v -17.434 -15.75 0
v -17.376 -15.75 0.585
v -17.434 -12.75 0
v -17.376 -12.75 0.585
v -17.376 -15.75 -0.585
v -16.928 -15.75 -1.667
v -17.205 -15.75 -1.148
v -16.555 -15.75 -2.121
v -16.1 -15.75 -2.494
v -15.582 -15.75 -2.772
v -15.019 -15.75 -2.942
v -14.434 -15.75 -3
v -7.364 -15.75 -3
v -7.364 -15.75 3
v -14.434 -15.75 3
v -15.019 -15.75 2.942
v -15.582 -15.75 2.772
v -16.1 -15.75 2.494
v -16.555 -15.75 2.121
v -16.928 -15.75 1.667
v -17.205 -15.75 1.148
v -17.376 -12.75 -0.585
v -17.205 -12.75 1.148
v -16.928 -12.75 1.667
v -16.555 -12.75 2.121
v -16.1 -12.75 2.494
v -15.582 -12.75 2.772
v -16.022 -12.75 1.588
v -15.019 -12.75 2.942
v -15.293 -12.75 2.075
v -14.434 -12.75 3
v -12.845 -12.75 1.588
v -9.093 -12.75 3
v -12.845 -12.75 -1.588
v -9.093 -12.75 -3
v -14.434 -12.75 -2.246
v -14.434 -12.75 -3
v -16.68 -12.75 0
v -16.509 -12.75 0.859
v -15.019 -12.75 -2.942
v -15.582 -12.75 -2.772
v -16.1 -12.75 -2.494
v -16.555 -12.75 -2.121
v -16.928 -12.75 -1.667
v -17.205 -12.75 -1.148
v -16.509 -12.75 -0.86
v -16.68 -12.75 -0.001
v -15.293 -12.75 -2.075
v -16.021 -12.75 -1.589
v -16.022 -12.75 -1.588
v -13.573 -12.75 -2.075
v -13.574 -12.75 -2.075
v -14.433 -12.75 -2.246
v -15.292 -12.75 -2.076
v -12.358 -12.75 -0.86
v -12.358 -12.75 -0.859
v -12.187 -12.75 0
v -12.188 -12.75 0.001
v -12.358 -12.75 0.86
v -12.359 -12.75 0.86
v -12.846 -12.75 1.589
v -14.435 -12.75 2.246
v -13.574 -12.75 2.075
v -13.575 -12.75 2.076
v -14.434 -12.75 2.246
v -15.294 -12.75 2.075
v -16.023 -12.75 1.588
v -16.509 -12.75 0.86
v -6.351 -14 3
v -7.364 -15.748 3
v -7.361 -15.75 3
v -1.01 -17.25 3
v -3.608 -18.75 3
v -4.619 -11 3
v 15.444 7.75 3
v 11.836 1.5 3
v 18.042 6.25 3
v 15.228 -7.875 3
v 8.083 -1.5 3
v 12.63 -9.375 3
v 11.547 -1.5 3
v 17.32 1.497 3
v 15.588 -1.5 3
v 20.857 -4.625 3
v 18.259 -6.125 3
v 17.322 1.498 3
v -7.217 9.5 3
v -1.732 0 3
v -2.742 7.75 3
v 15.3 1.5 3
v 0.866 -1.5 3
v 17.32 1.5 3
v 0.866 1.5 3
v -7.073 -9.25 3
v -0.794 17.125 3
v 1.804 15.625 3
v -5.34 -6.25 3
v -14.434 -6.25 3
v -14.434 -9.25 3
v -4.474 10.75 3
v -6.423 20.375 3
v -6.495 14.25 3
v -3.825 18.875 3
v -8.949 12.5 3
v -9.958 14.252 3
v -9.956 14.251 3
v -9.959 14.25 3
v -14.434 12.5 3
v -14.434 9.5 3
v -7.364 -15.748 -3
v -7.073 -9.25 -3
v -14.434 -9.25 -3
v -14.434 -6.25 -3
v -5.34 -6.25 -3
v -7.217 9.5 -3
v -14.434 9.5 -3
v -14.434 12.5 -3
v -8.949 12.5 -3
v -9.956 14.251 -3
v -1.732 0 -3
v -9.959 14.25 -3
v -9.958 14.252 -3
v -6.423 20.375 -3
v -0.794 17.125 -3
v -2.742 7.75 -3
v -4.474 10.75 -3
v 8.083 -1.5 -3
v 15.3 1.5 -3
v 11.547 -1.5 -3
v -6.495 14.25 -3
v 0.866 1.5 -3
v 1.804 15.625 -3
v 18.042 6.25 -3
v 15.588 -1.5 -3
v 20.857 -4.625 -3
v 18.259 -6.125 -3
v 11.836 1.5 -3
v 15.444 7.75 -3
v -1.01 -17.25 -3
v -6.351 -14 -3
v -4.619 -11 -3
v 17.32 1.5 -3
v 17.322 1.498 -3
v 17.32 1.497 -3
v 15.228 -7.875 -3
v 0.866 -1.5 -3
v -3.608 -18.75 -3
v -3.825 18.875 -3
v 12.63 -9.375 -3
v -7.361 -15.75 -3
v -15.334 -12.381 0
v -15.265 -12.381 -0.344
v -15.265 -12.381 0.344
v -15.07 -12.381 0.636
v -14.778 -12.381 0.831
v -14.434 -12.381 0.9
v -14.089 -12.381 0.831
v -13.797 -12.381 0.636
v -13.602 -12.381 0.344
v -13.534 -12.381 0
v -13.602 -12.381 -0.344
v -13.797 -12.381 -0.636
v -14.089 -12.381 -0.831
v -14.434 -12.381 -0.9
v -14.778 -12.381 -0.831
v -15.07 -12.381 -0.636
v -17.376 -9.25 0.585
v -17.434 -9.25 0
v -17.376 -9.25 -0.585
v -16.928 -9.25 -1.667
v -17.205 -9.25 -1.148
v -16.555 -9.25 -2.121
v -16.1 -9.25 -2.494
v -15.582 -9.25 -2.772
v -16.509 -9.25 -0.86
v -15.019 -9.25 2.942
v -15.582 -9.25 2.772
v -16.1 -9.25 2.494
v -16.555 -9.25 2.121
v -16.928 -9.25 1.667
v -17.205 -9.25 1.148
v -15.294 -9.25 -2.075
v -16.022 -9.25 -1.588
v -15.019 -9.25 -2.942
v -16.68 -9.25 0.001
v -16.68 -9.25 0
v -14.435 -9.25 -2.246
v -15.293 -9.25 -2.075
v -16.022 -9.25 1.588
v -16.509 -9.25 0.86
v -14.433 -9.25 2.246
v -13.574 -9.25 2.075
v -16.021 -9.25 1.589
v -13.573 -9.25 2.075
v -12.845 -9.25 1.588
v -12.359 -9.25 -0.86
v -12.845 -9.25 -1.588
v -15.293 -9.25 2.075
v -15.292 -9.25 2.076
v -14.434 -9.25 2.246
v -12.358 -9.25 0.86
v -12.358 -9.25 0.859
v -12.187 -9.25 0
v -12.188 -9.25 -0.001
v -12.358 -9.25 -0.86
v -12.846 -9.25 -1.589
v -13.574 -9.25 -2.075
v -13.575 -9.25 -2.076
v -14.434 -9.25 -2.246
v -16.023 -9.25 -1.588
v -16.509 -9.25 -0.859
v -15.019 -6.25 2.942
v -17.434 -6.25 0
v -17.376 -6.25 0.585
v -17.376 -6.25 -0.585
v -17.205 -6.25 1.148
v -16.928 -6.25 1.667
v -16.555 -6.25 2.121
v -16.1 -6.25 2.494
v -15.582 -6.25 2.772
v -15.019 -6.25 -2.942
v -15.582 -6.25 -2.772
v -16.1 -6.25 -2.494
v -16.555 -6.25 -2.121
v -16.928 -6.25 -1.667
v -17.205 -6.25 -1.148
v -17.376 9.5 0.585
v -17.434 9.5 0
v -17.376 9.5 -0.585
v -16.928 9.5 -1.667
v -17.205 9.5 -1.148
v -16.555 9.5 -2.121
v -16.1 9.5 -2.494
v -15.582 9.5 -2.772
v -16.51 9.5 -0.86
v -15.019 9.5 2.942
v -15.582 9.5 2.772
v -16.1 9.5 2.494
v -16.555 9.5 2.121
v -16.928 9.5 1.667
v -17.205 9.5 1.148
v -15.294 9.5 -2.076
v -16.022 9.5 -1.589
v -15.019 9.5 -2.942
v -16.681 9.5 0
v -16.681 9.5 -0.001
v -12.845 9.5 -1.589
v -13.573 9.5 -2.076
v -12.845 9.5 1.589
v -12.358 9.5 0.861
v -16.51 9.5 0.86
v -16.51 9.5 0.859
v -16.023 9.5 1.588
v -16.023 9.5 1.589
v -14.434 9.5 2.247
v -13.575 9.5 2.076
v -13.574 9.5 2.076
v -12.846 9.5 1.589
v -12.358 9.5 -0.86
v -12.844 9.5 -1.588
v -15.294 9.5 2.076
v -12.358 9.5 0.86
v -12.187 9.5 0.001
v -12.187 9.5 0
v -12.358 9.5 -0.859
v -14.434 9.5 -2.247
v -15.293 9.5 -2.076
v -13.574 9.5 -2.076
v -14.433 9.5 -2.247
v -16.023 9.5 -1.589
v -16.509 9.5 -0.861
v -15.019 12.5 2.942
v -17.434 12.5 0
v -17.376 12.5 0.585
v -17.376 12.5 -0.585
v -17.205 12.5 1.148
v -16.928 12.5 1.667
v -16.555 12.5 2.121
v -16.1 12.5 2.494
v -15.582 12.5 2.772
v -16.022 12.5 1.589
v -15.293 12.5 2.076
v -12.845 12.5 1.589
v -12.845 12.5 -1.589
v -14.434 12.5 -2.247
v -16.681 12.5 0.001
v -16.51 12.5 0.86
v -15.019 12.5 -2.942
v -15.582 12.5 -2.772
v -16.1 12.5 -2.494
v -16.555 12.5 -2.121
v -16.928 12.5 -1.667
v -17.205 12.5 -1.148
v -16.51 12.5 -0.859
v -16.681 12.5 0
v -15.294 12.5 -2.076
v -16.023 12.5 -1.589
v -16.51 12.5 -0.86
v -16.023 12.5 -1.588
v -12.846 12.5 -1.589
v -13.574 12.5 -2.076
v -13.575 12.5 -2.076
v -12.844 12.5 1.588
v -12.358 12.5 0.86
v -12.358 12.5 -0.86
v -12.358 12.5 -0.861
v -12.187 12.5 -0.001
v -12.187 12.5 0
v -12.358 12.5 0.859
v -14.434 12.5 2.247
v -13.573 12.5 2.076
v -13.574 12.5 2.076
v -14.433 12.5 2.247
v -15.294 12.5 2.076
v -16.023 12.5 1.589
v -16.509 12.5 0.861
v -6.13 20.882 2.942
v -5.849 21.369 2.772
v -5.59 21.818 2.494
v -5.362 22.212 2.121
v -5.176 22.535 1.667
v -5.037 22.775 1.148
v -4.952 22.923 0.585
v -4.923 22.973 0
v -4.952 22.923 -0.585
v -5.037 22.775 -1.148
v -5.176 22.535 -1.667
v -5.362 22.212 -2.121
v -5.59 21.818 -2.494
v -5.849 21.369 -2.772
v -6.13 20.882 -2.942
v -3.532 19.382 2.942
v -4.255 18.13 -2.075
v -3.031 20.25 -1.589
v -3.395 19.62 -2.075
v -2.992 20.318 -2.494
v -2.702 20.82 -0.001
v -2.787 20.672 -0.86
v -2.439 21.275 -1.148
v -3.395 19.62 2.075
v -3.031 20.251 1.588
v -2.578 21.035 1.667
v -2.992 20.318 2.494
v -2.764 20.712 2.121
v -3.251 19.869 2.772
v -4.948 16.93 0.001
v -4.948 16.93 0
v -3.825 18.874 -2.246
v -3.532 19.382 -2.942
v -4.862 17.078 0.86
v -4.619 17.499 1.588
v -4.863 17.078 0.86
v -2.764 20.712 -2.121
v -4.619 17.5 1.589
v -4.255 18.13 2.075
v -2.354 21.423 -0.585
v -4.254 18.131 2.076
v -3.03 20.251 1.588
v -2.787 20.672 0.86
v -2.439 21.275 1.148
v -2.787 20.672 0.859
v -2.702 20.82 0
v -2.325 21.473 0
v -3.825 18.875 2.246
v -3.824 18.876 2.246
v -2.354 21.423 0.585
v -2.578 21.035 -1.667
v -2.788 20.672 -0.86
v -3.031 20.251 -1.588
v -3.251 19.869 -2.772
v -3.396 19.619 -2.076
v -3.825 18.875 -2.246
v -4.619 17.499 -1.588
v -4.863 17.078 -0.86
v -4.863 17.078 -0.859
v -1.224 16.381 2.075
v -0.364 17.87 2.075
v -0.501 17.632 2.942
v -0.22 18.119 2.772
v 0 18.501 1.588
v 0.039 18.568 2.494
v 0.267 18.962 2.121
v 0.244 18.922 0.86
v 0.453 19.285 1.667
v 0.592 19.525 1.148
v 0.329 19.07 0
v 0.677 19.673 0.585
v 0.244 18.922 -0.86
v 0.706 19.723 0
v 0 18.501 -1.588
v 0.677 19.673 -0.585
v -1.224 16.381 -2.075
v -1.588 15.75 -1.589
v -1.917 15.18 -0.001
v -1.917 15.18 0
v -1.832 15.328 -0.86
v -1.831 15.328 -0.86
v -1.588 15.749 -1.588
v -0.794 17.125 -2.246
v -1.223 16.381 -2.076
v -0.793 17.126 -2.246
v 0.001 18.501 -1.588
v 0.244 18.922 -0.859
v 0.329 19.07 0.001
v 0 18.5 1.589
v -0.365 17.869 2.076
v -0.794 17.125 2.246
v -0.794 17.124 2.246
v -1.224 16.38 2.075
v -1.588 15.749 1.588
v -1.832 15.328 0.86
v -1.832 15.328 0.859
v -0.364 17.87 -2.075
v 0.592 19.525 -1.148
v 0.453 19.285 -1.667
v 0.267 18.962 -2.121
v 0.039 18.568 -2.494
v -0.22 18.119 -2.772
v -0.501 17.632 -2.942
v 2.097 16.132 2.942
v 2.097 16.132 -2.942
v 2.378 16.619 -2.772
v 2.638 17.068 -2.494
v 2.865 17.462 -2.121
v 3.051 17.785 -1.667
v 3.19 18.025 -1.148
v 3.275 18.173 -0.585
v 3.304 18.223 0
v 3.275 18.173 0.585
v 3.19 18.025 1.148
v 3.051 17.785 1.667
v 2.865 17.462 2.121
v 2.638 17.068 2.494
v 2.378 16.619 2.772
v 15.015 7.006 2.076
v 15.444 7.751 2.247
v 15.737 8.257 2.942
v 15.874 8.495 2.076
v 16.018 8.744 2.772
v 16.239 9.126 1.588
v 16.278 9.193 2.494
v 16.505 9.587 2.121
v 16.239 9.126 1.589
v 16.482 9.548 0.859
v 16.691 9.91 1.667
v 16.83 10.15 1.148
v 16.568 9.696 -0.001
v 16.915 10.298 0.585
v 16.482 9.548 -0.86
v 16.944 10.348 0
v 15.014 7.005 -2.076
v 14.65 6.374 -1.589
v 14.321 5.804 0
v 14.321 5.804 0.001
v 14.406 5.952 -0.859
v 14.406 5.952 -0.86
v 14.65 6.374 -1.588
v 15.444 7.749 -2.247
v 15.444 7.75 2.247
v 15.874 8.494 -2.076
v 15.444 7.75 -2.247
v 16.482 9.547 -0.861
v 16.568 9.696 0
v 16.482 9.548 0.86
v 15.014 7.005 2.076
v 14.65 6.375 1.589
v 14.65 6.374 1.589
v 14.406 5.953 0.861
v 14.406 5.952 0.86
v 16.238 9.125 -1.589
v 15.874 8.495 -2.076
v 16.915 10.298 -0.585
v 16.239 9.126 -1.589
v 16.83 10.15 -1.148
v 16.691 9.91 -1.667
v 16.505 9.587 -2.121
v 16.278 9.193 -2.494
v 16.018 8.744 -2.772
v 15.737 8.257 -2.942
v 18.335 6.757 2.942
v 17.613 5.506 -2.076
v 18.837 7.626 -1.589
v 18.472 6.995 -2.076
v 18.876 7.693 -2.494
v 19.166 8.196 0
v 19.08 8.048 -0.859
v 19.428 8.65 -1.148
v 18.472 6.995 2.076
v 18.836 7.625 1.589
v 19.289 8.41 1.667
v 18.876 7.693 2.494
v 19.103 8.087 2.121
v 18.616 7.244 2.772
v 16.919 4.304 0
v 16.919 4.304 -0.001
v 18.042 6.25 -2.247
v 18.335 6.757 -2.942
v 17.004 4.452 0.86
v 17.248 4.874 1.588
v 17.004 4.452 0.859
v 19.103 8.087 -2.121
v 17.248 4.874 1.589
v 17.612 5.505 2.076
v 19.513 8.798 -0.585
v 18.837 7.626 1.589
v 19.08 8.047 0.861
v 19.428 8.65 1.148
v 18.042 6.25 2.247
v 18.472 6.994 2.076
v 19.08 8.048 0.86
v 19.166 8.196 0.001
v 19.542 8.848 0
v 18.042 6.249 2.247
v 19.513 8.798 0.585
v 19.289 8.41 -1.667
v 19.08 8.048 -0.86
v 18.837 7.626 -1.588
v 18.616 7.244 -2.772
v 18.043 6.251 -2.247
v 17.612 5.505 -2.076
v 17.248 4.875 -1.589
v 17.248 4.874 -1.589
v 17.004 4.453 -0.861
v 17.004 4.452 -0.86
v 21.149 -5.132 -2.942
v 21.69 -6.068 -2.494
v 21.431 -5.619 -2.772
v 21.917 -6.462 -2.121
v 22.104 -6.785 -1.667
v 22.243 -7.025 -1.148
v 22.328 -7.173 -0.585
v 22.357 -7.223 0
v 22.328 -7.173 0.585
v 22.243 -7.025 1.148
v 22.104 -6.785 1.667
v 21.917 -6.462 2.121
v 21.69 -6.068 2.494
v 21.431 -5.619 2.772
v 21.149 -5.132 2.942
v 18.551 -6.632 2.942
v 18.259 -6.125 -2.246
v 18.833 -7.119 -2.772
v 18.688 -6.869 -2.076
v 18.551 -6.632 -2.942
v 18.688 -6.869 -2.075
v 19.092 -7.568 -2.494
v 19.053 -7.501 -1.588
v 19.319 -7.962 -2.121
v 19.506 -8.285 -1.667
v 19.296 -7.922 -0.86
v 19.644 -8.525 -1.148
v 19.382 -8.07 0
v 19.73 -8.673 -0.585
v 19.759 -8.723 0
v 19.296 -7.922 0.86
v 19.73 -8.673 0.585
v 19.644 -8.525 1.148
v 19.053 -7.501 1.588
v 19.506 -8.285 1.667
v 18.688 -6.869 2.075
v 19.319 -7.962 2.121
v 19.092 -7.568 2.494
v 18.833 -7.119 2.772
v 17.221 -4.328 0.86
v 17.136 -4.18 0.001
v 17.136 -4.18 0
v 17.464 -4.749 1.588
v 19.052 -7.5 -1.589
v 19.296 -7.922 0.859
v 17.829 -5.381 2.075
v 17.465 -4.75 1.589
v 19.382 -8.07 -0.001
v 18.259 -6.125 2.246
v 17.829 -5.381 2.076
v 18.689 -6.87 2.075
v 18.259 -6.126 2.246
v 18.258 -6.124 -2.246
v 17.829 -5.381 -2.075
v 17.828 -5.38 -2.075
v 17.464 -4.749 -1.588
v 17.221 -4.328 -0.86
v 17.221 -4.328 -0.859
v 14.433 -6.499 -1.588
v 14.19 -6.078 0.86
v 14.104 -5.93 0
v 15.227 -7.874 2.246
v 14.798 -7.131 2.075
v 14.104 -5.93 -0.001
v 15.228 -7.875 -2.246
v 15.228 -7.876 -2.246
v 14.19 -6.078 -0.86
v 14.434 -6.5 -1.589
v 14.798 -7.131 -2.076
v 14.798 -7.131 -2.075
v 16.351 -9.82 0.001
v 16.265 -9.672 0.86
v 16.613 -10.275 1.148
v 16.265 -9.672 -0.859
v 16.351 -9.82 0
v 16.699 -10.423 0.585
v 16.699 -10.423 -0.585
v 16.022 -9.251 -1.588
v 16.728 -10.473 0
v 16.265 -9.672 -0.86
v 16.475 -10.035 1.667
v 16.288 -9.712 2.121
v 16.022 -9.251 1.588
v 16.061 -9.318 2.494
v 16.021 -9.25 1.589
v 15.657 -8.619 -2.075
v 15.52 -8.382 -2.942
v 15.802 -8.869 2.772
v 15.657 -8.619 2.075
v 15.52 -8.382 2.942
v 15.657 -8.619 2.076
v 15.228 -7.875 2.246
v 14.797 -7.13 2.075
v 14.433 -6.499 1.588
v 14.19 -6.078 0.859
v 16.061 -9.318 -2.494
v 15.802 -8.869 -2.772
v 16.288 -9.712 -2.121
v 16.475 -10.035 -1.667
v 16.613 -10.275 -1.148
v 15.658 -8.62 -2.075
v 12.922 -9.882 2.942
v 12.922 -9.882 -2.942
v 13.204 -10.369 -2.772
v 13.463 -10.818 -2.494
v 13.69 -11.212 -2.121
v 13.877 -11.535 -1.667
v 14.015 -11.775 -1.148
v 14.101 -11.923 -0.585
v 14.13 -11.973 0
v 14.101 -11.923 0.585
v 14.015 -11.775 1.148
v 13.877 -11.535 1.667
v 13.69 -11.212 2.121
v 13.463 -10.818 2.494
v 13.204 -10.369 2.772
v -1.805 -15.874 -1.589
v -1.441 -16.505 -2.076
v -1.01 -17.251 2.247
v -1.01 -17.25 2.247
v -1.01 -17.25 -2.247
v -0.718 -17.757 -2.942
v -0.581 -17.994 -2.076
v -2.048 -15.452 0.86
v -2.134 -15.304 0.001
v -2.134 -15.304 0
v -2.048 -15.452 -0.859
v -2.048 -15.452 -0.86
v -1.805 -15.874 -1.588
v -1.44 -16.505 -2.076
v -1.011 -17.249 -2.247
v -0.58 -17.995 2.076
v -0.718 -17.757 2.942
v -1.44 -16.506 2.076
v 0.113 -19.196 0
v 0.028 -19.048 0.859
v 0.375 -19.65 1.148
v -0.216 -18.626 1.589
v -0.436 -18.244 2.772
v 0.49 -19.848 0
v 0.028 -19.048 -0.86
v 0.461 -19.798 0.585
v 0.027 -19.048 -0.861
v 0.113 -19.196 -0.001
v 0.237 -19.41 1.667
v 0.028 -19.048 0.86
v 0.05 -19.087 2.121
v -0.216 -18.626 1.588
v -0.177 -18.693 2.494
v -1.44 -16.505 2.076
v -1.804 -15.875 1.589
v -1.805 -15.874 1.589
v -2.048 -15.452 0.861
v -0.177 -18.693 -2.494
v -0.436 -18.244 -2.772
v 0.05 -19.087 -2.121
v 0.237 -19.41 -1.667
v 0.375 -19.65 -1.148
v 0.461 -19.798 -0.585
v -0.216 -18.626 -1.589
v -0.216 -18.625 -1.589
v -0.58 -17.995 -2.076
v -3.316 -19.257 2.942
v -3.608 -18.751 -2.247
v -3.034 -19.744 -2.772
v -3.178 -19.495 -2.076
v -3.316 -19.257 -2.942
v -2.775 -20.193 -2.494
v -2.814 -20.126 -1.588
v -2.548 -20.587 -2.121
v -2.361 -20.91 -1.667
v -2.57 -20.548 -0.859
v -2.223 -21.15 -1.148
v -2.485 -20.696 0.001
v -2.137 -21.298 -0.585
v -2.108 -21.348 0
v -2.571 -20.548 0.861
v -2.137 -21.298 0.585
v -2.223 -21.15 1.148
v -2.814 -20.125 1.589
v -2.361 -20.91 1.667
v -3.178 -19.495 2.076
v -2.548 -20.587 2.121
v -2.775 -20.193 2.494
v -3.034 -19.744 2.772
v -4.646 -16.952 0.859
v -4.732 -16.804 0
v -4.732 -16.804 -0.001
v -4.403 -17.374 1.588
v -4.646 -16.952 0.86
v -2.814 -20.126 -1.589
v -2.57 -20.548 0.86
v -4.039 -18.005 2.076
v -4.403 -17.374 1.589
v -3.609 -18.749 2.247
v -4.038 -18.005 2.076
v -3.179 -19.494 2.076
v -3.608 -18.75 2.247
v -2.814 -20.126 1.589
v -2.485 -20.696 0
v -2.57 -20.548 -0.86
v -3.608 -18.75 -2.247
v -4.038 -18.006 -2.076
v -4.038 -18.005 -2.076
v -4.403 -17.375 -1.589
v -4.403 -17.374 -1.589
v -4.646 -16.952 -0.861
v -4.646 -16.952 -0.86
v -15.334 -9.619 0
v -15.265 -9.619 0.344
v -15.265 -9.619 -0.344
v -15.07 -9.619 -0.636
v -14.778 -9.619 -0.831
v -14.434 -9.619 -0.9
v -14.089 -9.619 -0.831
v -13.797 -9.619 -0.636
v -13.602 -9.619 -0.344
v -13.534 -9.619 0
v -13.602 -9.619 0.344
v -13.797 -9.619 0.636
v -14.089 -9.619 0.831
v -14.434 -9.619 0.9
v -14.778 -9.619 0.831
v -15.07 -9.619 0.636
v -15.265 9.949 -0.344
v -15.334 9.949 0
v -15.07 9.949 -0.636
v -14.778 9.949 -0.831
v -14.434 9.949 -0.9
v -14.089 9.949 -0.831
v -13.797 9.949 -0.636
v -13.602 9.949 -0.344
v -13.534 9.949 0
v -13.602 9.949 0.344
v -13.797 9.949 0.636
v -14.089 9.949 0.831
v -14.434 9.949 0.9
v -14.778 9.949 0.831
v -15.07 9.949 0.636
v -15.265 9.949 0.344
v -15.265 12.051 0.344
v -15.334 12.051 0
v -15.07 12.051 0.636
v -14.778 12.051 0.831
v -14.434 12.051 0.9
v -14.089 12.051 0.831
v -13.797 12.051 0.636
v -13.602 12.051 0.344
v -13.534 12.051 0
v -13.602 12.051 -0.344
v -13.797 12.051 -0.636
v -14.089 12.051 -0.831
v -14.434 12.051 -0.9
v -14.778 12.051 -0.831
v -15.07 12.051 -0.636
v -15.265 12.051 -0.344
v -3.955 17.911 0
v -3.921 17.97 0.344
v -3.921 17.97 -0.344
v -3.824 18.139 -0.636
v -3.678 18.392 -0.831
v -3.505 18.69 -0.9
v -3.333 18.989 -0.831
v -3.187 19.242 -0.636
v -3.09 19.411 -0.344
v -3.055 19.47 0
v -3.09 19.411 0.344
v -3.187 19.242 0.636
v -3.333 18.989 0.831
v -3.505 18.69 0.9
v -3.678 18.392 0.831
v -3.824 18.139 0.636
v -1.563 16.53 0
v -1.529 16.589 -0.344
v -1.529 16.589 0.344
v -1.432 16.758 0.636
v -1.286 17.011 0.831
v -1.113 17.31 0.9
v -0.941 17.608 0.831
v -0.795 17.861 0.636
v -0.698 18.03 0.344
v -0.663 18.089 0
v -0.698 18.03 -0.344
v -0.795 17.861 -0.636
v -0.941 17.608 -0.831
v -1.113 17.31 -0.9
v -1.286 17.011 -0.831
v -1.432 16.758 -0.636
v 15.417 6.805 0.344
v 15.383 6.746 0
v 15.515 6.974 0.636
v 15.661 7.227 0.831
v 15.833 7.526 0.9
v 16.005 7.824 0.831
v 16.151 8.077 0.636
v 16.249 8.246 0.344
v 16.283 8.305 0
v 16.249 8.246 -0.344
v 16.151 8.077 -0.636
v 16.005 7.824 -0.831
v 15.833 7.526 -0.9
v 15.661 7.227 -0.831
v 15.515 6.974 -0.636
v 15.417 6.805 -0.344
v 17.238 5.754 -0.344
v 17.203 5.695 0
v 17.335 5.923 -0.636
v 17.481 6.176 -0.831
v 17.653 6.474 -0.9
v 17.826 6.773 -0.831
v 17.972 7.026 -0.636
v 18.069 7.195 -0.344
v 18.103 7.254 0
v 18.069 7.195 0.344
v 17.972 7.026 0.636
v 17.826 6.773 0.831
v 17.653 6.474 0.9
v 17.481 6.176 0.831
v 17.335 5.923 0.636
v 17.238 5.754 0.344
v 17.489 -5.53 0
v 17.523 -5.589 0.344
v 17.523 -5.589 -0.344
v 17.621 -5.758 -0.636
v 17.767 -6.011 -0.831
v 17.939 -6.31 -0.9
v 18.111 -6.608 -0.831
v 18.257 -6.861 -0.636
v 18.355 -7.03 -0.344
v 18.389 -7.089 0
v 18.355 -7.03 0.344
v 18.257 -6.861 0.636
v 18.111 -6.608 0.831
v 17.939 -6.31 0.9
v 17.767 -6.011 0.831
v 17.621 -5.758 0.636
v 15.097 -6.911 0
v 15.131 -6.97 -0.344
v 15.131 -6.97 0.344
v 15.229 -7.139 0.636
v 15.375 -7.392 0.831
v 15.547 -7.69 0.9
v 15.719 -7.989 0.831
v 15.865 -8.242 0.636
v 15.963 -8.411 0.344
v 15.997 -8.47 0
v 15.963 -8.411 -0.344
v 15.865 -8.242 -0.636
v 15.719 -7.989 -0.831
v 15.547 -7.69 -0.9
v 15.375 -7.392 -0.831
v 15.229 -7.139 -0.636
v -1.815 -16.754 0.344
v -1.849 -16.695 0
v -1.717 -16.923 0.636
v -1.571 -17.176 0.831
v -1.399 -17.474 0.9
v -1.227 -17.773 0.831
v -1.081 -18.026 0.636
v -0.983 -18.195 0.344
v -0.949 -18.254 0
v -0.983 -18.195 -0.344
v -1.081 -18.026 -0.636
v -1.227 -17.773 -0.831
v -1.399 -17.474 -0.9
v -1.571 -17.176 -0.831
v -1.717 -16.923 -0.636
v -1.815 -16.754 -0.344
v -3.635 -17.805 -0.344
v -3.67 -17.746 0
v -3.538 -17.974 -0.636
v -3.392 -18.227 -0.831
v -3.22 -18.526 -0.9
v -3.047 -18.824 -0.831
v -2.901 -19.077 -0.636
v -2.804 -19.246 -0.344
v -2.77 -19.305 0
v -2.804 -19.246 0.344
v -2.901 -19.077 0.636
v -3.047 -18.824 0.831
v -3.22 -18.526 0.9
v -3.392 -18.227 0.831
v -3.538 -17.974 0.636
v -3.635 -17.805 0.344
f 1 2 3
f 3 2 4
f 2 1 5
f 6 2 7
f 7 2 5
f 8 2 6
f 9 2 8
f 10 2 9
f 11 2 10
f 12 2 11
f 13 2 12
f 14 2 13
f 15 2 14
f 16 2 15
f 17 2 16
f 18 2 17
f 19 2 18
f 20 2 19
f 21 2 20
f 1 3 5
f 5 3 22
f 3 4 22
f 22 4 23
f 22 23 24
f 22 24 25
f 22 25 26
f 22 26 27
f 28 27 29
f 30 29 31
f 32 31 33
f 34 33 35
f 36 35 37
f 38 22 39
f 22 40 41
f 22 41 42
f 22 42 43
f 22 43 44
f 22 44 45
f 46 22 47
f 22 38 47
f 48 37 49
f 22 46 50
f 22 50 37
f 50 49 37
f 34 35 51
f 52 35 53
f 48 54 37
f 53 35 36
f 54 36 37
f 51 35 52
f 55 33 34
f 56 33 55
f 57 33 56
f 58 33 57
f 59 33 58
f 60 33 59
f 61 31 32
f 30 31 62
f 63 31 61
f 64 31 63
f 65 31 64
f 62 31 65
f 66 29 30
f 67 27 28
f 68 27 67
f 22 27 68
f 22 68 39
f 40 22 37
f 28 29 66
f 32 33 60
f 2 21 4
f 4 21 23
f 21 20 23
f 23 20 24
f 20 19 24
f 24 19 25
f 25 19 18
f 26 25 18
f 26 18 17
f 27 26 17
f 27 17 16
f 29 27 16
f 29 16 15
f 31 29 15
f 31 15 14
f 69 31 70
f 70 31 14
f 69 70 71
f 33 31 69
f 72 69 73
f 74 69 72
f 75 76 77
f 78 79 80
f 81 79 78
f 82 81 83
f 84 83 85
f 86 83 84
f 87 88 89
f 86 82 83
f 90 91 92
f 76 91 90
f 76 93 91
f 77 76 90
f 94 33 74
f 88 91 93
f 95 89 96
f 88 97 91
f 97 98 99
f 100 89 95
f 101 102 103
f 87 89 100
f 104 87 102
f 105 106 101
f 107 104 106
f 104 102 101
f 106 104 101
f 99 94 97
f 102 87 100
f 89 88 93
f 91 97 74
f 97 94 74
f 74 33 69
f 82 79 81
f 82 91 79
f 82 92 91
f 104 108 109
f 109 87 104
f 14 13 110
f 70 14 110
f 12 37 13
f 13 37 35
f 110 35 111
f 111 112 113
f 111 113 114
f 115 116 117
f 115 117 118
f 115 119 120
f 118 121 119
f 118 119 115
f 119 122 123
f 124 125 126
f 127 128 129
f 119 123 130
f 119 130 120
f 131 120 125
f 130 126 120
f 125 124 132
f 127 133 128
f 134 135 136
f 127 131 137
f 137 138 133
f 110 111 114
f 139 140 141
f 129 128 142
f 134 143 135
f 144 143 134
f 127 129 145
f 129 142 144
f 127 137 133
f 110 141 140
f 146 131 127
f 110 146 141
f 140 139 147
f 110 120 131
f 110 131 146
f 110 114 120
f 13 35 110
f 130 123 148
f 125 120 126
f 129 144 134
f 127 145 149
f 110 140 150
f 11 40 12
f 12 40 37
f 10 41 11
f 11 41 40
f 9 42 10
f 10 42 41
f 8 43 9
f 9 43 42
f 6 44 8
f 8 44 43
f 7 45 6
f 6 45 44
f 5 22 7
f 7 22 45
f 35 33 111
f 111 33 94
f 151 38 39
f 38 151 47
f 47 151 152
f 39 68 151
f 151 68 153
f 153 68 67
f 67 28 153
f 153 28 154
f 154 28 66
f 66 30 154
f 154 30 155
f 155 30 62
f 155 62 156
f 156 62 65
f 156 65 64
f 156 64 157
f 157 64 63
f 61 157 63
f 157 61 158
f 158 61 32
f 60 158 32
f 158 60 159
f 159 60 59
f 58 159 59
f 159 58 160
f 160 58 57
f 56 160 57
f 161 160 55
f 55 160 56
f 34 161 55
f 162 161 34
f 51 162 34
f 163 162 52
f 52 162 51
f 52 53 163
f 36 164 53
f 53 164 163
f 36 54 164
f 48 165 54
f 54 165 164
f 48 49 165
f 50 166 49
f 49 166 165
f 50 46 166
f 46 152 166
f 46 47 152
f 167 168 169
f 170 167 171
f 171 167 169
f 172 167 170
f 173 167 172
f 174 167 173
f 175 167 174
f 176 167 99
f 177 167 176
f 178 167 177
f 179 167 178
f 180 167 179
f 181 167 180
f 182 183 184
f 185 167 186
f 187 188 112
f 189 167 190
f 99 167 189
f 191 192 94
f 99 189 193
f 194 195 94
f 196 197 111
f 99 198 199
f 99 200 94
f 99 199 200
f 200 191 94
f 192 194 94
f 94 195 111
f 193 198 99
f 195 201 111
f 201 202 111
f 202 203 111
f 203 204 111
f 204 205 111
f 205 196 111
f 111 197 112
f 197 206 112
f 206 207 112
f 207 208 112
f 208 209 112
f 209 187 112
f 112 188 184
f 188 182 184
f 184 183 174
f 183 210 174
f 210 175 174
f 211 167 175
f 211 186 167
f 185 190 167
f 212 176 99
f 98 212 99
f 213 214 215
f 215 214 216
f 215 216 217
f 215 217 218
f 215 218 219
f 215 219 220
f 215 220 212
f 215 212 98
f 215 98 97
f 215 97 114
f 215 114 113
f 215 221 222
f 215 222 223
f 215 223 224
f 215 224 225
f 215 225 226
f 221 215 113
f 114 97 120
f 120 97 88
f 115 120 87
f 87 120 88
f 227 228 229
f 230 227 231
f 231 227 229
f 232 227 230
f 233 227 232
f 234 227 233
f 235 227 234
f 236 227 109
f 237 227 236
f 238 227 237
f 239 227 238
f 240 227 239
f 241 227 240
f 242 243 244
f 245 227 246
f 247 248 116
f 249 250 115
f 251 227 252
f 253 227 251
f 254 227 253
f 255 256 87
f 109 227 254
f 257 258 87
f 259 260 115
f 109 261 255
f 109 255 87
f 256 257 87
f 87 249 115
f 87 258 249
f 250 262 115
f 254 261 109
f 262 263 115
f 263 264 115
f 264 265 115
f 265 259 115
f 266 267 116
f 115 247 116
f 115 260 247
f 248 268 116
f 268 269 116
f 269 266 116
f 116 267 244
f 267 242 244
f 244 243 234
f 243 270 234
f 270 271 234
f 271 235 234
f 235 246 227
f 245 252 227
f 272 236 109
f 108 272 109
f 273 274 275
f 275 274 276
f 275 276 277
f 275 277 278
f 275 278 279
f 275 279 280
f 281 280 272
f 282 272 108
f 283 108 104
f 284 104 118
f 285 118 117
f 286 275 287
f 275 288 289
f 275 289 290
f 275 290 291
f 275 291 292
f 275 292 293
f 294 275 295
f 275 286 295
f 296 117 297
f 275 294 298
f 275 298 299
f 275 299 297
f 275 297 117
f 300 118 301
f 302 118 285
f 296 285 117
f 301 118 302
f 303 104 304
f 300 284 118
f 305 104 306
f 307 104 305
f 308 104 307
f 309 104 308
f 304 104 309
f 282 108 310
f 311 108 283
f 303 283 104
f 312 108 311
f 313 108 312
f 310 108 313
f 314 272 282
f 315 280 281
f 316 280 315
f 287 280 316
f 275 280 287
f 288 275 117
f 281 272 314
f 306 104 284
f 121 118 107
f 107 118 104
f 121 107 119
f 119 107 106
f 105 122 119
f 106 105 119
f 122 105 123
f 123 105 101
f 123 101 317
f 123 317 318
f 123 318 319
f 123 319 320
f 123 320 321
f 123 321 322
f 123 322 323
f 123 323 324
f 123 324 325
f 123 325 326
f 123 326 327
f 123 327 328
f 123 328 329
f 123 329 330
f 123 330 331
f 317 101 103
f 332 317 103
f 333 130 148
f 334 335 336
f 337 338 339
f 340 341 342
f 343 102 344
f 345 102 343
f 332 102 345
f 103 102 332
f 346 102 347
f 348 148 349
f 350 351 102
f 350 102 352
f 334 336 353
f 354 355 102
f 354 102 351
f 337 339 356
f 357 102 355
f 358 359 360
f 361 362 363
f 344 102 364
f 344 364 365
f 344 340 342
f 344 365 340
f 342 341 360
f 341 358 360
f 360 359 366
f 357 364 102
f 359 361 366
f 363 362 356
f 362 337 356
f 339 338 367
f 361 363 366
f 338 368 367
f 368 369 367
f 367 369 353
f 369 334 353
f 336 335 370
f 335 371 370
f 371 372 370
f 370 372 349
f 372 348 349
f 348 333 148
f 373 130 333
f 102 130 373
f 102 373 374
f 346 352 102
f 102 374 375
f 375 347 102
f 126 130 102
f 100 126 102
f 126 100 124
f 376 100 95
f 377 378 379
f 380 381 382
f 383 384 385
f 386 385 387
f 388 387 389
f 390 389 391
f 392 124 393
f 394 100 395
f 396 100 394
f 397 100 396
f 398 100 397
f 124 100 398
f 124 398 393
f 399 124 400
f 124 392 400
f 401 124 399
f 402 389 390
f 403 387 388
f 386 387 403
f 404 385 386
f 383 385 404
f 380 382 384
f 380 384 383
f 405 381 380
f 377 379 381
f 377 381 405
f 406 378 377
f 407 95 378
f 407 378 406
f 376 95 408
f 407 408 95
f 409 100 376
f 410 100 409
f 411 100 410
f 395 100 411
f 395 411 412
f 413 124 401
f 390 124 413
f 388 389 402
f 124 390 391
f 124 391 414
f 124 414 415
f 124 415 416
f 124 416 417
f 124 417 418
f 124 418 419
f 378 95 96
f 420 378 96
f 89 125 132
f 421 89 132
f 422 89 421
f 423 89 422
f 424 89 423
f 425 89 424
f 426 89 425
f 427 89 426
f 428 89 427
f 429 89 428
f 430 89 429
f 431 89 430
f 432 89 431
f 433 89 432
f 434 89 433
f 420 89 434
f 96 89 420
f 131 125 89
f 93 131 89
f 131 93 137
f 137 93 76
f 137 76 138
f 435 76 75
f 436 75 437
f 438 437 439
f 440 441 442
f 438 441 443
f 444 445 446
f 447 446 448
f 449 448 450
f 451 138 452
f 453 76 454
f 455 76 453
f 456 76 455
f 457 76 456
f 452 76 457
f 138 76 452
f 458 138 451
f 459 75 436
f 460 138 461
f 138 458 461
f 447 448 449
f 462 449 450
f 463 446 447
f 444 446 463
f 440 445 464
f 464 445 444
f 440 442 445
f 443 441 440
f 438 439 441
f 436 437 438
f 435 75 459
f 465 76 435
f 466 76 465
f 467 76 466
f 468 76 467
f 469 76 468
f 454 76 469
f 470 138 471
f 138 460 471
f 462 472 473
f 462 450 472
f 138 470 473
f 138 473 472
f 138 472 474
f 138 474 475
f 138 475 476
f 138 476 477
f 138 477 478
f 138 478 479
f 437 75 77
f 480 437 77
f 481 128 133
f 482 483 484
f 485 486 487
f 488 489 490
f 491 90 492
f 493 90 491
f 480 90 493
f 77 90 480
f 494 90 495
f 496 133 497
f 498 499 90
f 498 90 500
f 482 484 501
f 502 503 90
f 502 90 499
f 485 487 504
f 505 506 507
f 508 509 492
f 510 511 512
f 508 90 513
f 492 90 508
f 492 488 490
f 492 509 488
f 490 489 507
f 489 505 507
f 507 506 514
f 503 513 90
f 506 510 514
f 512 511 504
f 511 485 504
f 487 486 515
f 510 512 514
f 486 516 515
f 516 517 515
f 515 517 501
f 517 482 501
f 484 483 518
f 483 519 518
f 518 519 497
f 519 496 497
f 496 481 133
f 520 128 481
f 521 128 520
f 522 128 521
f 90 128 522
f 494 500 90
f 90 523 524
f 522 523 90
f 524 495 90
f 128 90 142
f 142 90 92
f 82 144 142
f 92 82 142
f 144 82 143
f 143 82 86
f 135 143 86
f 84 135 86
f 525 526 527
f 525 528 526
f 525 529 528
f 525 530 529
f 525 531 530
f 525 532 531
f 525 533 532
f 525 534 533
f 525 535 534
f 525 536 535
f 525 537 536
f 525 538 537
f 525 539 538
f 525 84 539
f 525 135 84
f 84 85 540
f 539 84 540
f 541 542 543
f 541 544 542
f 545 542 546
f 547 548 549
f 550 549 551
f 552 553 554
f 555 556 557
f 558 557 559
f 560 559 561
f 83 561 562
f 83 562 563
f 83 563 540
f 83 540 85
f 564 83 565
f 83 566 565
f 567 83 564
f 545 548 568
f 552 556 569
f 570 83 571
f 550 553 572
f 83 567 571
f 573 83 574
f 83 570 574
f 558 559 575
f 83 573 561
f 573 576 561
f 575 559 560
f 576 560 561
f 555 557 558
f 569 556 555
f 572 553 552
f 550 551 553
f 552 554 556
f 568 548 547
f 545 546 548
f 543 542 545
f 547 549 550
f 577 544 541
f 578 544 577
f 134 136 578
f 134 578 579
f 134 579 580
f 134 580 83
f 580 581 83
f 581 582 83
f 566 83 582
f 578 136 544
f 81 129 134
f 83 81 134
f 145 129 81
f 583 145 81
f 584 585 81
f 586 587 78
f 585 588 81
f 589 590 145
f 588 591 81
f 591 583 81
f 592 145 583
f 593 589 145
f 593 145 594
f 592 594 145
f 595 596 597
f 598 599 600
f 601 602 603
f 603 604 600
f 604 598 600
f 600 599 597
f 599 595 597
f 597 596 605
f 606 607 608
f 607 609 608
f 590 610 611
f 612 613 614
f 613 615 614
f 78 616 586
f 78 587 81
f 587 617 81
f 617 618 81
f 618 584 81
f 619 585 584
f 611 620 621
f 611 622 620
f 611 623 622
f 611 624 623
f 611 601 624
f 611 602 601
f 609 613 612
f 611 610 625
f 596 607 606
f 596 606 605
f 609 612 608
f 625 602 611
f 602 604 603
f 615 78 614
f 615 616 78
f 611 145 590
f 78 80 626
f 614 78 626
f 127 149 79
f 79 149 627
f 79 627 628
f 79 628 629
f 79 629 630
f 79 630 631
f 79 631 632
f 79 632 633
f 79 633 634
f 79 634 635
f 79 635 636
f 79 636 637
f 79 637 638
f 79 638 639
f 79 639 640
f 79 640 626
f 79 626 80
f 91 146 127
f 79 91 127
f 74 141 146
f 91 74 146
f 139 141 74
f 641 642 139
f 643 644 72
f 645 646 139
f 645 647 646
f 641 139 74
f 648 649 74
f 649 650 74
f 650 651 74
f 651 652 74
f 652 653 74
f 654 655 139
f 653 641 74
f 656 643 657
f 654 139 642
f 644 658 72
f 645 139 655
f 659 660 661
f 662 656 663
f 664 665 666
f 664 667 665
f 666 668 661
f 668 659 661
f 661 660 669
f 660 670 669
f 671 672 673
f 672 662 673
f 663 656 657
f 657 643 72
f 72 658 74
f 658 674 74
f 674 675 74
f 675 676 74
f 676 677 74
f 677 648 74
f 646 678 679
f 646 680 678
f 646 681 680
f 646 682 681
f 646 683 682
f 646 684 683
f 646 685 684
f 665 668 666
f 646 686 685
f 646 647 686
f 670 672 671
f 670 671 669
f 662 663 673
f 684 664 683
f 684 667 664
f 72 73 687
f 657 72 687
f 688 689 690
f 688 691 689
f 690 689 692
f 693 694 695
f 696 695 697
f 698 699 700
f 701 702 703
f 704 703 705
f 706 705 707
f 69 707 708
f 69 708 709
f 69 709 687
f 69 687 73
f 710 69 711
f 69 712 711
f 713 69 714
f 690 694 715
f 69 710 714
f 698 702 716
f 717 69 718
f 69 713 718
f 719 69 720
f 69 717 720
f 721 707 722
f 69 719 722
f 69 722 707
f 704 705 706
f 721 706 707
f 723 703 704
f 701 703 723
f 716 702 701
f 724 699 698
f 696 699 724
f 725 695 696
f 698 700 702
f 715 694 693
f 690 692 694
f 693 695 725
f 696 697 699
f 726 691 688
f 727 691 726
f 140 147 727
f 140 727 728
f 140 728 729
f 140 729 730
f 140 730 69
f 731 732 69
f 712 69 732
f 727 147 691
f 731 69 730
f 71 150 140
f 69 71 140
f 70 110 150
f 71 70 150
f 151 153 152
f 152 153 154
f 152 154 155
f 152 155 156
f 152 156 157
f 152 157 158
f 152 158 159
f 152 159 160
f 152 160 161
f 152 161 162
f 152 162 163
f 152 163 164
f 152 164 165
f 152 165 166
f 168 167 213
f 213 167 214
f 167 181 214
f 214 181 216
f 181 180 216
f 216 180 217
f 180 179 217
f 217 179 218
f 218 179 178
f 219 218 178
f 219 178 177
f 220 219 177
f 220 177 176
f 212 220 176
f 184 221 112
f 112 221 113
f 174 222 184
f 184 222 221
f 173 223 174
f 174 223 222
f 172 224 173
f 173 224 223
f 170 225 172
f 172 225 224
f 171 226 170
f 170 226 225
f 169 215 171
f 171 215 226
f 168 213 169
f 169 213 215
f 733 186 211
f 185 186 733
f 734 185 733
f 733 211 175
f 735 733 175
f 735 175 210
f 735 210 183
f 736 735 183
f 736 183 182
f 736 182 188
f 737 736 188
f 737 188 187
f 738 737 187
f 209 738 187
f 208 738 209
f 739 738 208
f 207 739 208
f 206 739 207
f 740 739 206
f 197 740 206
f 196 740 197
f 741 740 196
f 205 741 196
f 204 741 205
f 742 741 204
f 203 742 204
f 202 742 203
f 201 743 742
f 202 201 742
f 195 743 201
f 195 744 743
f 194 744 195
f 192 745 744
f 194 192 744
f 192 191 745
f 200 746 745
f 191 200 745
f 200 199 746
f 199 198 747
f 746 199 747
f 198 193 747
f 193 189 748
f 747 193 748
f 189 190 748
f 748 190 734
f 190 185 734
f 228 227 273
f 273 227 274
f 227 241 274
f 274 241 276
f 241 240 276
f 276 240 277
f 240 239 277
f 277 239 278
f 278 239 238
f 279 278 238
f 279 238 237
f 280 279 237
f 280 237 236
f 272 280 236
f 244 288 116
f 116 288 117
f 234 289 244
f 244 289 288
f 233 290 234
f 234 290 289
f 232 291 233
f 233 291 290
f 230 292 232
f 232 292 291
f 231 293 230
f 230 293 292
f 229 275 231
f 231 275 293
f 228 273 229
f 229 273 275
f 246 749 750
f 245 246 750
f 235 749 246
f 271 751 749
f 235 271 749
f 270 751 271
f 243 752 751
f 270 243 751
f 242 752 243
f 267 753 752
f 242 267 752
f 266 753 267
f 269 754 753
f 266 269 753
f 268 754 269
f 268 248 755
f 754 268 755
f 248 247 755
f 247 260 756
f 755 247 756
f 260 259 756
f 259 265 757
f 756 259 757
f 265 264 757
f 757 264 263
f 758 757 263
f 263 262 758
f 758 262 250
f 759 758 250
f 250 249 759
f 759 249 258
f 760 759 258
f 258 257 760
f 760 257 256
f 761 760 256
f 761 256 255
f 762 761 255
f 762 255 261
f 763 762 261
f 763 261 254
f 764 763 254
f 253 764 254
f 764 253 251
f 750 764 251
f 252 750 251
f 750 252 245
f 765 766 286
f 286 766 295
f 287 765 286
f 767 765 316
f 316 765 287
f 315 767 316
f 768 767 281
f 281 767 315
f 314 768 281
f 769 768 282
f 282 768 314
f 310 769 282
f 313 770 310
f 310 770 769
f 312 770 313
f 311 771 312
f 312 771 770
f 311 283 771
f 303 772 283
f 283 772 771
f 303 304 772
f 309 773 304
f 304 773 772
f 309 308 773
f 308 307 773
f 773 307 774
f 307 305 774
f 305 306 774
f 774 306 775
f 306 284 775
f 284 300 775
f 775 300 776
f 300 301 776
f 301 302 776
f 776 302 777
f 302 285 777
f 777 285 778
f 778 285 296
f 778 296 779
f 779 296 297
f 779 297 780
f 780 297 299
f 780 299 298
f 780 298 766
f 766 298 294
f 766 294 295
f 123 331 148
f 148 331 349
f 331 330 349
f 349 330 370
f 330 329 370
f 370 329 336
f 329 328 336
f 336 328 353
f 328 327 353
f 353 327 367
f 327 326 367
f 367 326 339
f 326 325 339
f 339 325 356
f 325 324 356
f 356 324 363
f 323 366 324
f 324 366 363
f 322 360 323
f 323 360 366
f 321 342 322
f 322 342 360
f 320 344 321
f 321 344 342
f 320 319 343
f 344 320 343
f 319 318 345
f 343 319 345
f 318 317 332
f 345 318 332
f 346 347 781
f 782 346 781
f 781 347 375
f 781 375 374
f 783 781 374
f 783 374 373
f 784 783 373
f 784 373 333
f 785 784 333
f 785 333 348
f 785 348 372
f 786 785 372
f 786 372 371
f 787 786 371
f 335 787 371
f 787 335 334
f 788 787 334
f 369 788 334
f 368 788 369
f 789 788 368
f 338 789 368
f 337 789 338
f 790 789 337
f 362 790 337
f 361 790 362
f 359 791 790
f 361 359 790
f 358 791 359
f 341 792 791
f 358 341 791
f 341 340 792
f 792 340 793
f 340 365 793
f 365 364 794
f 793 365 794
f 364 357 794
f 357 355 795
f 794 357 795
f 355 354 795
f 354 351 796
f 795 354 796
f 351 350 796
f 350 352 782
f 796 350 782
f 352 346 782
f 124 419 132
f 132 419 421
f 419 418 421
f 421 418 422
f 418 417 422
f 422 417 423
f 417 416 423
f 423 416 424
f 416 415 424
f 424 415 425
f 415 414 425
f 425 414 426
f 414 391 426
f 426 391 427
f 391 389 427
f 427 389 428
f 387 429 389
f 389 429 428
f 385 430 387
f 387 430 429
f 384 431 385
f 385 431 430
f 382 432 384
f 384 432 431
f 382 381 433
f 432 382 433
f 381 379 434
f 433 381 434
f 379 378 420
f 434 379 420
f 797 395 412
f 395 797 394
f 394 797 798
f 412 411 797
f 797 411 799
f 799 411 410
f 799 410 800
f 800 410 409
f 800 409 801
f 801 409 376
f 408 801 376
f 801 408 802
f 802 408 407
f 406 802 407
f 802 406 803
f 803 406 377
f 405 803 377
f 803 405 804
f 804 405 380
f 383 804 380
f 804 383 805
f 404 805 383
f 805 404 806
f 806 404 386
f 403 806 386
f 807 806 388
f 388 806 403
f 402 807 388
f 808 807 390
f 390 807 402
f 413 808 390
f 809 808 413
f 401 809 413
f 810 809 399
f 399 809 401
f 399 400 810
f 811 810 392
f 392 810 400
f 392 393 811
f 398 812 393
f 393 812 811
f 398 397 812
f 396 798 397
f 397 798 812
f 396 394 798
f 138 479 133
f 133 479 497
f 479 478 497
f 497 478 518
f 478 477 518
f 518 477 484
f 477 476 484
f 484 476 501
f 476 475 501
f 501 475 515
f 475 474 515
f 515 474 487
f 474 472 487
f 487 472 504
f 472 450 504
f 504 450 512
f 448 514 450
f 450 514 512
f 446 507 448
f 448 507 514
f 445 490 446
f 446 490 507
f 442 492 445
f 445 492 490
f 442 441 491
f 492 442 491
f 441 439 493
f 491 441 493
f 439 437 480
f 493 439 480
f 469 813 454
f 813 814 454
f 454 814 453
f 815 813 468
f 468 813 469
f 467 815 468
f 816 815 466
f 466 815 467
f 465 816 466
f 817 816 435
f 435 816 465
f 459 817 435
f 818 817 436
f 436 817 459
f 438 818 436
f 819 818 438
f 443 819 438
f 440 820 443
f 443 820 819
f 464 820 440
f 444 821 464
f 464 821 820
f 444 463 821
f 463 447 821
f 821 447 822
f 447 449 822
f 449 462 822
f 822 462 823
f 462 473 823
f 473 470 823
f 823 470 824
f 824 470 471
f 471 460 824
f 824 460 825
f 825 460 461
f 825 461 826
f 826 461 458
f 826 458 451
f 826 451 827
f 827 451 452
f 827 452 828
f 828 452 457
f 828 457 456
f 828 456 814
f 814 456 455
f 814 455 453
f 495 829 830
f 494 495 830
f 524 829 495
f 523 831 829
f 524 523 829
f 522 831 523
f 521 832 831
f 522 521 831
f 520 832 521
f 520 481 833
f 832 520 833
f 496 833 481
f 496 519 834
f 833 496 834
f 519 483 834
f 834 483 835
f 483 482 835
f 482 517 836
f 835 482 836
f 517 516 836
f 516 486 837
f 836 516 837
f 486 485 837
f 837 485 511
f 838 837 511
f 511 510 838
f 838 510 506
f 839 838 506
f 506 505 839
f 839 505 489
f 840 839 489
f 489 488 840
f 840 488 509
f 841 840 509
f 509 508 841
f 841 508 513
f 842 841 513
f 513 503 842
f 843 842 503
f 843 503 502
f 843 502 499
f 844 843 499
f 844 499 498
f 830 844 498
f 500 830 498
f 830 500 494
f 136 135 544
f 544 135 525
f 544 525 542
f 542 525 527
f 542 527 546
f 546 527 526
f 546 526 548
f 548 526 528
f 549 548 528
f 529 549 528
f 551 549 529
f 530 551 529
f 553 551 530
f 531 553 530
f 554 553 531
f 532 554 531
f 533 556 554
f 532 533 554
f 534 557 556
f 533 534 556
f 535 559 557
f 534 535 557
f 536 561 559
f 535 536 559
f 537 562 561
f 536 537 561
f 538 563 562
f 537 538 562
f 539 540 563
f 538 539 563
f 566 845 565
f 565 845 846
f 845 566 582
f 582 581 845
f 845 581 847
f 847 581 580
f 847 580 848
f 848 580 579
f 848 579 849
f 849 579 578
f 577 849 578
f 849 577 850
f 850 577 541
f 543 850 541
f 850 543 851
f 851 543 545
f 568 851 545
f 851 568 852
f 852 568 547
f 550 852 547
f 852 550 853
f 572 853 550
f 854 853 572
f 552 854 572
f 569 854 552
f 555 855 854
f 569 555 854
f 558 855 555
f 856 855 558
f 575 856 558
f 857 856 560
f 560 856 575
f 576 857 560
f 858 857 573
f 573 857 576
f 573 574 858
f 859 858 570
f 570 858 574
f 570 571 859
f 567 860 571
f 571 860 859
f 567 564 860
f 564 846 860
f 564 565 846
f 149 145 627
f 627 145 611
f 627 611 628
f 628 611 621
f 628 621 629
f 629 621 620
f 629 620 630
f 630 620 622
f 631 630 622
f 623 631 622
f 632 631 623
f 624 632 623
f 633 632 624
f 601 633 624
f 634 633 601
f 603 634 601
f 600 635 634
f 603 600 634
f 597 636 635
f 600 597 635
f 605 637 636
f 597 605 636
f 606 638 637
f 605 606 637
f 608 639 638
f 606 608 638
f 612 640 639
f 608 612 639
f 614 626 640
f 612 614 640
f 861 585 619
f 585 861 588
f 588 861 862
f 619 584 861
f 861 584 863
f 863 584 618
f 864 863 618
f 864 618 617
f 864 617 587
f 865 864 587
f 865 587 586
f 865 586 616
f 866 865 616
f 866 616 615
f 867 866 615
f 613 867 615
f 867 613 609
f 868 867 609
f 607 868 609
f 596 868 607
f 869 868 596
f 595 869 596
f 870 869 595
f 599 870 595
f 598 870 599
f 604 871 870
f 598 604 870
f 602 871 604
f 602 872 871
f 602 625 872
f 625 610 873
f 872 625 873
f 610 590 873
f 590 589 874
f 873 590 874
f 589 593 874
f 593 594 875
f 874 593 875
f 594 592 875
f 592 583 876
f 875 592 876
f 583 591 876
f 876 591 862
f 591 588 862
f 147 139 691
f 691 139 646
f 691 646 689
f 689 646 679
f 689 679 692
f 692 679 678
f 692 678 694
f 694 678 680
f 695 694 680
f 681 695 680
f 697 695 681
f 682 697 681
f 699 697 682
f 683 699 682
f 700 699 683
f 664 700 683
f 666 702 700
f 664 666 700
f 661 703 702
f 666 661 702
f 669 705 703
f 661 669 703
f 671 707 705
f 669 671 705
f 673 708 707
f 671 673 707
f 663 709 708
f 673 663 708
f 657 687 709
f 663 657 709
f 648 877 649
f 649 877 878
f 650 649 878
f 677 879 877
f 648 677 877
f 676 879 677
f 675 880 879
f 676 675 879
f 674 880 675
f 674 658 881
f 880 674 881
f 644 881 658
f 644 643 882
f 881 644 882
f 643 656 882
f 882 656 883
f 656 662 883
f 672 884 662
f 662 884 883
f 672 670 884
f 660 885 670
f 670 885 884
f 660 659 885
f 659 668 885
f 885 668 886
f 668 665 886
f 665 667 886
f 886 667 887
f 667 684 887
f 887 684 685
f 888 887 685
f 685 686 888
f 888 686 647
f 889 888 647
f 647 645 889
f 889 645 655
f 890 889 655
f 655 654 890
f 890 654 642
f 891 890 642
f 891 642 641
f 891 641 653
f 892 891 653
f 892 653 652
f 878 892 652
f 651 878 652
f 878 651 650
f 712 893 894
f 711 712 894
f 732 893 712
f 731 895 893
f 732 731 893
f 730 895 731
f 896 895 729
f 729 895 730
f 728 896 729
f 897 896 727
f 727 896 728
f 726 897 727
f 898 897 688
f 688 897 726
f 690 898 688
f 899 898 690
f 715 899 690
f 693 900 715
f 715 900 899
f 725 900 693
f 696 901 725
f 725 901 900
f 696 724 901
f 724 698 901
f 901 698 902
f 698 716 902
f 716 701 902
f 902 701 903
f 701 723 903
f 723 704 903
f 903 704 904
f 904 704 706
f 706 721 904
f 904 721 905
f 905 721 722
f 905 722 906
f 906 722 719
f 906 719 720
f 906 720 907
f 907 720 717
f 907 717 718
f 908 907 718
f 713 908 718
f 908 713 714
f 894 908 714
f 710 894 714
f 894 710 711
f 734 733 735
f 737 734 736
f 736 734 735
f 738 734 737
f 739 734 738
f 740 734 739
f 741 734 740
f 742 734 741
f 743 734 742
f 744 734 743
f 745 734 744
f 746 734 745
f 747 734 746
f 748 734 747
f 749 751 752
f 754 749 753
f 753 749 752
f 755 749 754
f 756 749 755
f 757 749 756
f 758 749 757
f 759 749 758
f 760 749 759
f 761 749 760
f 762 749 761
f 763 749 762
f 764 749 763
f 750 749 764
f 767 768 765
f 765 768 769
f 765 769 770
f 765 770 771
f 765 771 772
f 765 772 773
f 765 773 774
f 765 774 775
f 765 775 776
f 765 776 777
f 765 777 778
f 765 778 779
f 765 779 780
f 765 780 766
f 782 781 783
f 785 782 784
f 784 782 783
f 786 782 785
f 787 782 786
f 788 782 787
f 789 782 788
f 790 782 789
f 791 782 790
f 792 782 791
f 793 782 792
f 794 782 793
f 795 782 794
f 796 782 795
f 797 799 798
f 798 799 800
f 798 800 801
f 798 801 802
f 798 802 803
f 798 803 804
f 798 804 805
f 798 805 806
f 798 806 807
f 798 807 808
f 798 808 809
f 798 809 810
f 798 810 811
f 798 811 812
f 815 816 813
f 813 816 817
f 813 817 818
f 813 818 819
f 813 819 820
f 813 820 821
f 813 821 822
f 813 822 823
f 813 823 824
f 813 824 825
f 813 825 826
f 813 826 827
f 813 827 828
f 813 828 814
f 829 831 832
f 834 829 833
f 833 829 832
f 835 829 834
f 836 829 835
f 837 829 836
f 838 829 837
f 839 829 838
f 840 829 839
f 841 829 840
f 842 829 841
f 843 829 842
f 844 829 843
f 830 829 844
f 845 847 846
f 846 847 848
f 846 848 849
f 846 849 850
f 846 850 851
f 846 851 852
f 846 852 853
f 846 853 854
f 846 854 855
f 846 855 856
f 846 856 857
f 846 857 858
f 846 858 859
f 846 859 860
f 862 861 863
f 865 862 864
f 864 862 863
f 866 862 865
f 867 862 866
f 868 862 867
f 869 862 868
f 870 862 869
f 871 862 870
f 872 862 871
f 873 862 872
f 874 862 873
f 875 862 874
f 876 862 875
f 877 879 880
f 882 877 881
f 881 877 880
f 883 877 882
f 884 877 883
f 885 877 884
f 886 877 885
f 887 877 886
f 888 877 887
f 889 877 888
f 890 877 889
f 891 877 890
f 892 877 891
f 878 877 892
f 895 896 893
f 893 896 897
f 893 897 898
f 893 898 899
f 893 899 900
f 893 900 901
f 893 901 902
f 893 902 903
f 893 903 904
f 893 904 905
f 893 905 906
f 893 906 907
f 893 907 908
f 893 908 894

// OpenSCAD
// CONSTANTS

sides = 3;

sidelen = 50;

pad_offset = sidelen * 0.22;

tall = 6;
thick = 3;

nub_rad = (tall-1.5)/2;
nub_min_rad = nub_rad * 0.4;
nub_protrusion_male = 0.37;
nub_protrusion_female = 0.45;
nub_clearance = 0.25; // shift paired pads apart a bit

is_rounded = 1;
show_axis_line = 0;


// for sides = 3
stick_in_dist_center_pad = 4.5;
stick_in_dist_outer_pad = 4.07;
stick_in_dist_inner_pad = 6.5;
diagonal_strut_length = 17.32;
diagonal_strut_spin_offset = 0;




// TRIGONOMETRY

PI = 3.14159265359;

inner_angle = 360 / (sides * 2);
outer_angle = 90 - inner_angle;

echo("sides = ",sides);
echo("inner_angle = ",inner_angle);
echo("outer_angle = ",outer_angle);

minrad = sidelen * tan(outer_angle)/2;
maxrad = sidelen / (2*cos(outer_angle));

echo("minrad = ",minrad);
echo("maxrad = ",maxrad);




module polygon() {

for (i=[1:3]) {
	rotate([0,0,i*360/sides]) {
		translate([-minrad,0,0]) {
			// axis line
			if(show_axis_line == 1) {
				color("cyan") translate([-0.5,-sidelen/2,-0.5]) cube([1,sidelen,1]);
			}

			// diagonal strut
			translate([minrad,-thick/2 + diagonal_strut_spin_offset,-tall/2]) cube([diagonal_strut_length,thick,tall]);

			intersection() {
				// rounding the edges
				if (is_rounded == 1) {
					union() {
						// cylinder
						translate([0,sidelen/2,0]) rotate([90,0,0]) cylinder(h=sidelen,r=tall/2,$fn=32);
						// long box
						translate([0,-sidelen/2,-tall/2]) cube([tall*4,sidelen,tall]);
					}
				}
				// the pads themselves
				union() {

					// center pad
					translate([-tall/2,-thick/2 + pad_offset,-tall/2]) {
						difference() {
							cube([tall+stick_in_dist_center_pad,thick,tall]);
							// inner nub
							color("red") translate([tall/2,nub_protrusion_female-0.001,tall/2]) rotate([90,0,0]) cylinder(h=nub_protrusion_female,r1=nub_min_rad,r2=nub_rad,$fn=16);
							// inner nub
							color("orange") translate([tall/2,thick+0.001,tall/2]) rotate([90,0,0]) cylinder(h=nub_protrusion_female,r1=nub_rad,r2=nub_min_rad,$fn=16);
						}
					}

					// outer pad
					translate([-tall/2,-thick/2 - pad_offset-thick - nub_clearance,-tall/2]) {
						cube([tall+stick_in_dist_outer_pad,thick,tall]);
						color("green") translate([tall/2,thick+nub_protrusion_male-0.001,tall/2]) rotate([90,0,0]) cylinder(h=nub_protrusion_male,r1=nub_min_rad,r2=nub_rad,$fn=16);
					}
					// inner pad
					translate([-tall/2,-thick/2 - pad_offset+thick + nub_clearance,-tall/2]) {
						cube([tall+stick_in_dist_inner_pad,thick,tall]);
						color("cyan") translate([tall/2,0.001,tall/2]) rotate([90,0,0]) cylinder(h=nub_protrusion_male,r1=nub_rad,r2=nub_min_rad,$fn=16);
					}

				}
			}
		}
	}
}

}


/*
// test fixture
union() {
	difference() {
		polygon();
		translate([-minrad+tall+2.5,-sidelen/2,-tall]) cube([tall*10,sidelen,tall*2]);
	}

	// temporary bar to hold the pieces together
	translate([-minrad+tall+2.5,-sidelen/2 * 0.8,-tall/2]) cube([thick,sidelen * 0.8,tall*0.7]);
	// handles so we can pull it off the print bed
	//translate([-minrad+tall+2.5 - 2,sidelen/2 * 0.8 - thick,tall*1.4 / 3]) rotate([0,45,0]) cube([tall,thick,tall]);
	//translate([-minrad+tall+2.5 - 2,-sidelen/2 * 0.8 + 0.1,tall*1.4 / 3]) rotate([0,45,0]) cube([tall,thick,tall]);
	translate([-minrad+tall+2.5 + 2,-sidelen/2 * 0.8 + 0.1 + thick,tall*1.4 / 3]) rotate([110,0,0]) cylinder(h=thick,r=thick,$fn=16);
	translate([-minrad+tall+2.5 + 2,sidelen/2 * 0.8 + 0.1 + thick/2,tall*1.4 / 3 - 1]) rotate([70,0,0]) cylinder(h=thick,r=thick,$fn=16);
}
*/

polygon();

/*
translate([-minrad,0,0]) {
	rotate([0,-180+70,180]) {
		translate([minrad,0,0]) {
			# polygon();
		}
	}
}

rotate([0,0,120]) {
translate([-minrad,0,0]) {
	rotate([0,-180+70,180]) {
		translate([minrad,0,0]) {
			color("green") polygon();
		}
	}
}
}
rotate([0,0,-120]) {
translate([-minrad,0,0]) {
	rotate([0,-180+70,180]) {
		translate([minrad,0,0]) {
			color("cyan") polygon();
		}
	}
}
}
*/
